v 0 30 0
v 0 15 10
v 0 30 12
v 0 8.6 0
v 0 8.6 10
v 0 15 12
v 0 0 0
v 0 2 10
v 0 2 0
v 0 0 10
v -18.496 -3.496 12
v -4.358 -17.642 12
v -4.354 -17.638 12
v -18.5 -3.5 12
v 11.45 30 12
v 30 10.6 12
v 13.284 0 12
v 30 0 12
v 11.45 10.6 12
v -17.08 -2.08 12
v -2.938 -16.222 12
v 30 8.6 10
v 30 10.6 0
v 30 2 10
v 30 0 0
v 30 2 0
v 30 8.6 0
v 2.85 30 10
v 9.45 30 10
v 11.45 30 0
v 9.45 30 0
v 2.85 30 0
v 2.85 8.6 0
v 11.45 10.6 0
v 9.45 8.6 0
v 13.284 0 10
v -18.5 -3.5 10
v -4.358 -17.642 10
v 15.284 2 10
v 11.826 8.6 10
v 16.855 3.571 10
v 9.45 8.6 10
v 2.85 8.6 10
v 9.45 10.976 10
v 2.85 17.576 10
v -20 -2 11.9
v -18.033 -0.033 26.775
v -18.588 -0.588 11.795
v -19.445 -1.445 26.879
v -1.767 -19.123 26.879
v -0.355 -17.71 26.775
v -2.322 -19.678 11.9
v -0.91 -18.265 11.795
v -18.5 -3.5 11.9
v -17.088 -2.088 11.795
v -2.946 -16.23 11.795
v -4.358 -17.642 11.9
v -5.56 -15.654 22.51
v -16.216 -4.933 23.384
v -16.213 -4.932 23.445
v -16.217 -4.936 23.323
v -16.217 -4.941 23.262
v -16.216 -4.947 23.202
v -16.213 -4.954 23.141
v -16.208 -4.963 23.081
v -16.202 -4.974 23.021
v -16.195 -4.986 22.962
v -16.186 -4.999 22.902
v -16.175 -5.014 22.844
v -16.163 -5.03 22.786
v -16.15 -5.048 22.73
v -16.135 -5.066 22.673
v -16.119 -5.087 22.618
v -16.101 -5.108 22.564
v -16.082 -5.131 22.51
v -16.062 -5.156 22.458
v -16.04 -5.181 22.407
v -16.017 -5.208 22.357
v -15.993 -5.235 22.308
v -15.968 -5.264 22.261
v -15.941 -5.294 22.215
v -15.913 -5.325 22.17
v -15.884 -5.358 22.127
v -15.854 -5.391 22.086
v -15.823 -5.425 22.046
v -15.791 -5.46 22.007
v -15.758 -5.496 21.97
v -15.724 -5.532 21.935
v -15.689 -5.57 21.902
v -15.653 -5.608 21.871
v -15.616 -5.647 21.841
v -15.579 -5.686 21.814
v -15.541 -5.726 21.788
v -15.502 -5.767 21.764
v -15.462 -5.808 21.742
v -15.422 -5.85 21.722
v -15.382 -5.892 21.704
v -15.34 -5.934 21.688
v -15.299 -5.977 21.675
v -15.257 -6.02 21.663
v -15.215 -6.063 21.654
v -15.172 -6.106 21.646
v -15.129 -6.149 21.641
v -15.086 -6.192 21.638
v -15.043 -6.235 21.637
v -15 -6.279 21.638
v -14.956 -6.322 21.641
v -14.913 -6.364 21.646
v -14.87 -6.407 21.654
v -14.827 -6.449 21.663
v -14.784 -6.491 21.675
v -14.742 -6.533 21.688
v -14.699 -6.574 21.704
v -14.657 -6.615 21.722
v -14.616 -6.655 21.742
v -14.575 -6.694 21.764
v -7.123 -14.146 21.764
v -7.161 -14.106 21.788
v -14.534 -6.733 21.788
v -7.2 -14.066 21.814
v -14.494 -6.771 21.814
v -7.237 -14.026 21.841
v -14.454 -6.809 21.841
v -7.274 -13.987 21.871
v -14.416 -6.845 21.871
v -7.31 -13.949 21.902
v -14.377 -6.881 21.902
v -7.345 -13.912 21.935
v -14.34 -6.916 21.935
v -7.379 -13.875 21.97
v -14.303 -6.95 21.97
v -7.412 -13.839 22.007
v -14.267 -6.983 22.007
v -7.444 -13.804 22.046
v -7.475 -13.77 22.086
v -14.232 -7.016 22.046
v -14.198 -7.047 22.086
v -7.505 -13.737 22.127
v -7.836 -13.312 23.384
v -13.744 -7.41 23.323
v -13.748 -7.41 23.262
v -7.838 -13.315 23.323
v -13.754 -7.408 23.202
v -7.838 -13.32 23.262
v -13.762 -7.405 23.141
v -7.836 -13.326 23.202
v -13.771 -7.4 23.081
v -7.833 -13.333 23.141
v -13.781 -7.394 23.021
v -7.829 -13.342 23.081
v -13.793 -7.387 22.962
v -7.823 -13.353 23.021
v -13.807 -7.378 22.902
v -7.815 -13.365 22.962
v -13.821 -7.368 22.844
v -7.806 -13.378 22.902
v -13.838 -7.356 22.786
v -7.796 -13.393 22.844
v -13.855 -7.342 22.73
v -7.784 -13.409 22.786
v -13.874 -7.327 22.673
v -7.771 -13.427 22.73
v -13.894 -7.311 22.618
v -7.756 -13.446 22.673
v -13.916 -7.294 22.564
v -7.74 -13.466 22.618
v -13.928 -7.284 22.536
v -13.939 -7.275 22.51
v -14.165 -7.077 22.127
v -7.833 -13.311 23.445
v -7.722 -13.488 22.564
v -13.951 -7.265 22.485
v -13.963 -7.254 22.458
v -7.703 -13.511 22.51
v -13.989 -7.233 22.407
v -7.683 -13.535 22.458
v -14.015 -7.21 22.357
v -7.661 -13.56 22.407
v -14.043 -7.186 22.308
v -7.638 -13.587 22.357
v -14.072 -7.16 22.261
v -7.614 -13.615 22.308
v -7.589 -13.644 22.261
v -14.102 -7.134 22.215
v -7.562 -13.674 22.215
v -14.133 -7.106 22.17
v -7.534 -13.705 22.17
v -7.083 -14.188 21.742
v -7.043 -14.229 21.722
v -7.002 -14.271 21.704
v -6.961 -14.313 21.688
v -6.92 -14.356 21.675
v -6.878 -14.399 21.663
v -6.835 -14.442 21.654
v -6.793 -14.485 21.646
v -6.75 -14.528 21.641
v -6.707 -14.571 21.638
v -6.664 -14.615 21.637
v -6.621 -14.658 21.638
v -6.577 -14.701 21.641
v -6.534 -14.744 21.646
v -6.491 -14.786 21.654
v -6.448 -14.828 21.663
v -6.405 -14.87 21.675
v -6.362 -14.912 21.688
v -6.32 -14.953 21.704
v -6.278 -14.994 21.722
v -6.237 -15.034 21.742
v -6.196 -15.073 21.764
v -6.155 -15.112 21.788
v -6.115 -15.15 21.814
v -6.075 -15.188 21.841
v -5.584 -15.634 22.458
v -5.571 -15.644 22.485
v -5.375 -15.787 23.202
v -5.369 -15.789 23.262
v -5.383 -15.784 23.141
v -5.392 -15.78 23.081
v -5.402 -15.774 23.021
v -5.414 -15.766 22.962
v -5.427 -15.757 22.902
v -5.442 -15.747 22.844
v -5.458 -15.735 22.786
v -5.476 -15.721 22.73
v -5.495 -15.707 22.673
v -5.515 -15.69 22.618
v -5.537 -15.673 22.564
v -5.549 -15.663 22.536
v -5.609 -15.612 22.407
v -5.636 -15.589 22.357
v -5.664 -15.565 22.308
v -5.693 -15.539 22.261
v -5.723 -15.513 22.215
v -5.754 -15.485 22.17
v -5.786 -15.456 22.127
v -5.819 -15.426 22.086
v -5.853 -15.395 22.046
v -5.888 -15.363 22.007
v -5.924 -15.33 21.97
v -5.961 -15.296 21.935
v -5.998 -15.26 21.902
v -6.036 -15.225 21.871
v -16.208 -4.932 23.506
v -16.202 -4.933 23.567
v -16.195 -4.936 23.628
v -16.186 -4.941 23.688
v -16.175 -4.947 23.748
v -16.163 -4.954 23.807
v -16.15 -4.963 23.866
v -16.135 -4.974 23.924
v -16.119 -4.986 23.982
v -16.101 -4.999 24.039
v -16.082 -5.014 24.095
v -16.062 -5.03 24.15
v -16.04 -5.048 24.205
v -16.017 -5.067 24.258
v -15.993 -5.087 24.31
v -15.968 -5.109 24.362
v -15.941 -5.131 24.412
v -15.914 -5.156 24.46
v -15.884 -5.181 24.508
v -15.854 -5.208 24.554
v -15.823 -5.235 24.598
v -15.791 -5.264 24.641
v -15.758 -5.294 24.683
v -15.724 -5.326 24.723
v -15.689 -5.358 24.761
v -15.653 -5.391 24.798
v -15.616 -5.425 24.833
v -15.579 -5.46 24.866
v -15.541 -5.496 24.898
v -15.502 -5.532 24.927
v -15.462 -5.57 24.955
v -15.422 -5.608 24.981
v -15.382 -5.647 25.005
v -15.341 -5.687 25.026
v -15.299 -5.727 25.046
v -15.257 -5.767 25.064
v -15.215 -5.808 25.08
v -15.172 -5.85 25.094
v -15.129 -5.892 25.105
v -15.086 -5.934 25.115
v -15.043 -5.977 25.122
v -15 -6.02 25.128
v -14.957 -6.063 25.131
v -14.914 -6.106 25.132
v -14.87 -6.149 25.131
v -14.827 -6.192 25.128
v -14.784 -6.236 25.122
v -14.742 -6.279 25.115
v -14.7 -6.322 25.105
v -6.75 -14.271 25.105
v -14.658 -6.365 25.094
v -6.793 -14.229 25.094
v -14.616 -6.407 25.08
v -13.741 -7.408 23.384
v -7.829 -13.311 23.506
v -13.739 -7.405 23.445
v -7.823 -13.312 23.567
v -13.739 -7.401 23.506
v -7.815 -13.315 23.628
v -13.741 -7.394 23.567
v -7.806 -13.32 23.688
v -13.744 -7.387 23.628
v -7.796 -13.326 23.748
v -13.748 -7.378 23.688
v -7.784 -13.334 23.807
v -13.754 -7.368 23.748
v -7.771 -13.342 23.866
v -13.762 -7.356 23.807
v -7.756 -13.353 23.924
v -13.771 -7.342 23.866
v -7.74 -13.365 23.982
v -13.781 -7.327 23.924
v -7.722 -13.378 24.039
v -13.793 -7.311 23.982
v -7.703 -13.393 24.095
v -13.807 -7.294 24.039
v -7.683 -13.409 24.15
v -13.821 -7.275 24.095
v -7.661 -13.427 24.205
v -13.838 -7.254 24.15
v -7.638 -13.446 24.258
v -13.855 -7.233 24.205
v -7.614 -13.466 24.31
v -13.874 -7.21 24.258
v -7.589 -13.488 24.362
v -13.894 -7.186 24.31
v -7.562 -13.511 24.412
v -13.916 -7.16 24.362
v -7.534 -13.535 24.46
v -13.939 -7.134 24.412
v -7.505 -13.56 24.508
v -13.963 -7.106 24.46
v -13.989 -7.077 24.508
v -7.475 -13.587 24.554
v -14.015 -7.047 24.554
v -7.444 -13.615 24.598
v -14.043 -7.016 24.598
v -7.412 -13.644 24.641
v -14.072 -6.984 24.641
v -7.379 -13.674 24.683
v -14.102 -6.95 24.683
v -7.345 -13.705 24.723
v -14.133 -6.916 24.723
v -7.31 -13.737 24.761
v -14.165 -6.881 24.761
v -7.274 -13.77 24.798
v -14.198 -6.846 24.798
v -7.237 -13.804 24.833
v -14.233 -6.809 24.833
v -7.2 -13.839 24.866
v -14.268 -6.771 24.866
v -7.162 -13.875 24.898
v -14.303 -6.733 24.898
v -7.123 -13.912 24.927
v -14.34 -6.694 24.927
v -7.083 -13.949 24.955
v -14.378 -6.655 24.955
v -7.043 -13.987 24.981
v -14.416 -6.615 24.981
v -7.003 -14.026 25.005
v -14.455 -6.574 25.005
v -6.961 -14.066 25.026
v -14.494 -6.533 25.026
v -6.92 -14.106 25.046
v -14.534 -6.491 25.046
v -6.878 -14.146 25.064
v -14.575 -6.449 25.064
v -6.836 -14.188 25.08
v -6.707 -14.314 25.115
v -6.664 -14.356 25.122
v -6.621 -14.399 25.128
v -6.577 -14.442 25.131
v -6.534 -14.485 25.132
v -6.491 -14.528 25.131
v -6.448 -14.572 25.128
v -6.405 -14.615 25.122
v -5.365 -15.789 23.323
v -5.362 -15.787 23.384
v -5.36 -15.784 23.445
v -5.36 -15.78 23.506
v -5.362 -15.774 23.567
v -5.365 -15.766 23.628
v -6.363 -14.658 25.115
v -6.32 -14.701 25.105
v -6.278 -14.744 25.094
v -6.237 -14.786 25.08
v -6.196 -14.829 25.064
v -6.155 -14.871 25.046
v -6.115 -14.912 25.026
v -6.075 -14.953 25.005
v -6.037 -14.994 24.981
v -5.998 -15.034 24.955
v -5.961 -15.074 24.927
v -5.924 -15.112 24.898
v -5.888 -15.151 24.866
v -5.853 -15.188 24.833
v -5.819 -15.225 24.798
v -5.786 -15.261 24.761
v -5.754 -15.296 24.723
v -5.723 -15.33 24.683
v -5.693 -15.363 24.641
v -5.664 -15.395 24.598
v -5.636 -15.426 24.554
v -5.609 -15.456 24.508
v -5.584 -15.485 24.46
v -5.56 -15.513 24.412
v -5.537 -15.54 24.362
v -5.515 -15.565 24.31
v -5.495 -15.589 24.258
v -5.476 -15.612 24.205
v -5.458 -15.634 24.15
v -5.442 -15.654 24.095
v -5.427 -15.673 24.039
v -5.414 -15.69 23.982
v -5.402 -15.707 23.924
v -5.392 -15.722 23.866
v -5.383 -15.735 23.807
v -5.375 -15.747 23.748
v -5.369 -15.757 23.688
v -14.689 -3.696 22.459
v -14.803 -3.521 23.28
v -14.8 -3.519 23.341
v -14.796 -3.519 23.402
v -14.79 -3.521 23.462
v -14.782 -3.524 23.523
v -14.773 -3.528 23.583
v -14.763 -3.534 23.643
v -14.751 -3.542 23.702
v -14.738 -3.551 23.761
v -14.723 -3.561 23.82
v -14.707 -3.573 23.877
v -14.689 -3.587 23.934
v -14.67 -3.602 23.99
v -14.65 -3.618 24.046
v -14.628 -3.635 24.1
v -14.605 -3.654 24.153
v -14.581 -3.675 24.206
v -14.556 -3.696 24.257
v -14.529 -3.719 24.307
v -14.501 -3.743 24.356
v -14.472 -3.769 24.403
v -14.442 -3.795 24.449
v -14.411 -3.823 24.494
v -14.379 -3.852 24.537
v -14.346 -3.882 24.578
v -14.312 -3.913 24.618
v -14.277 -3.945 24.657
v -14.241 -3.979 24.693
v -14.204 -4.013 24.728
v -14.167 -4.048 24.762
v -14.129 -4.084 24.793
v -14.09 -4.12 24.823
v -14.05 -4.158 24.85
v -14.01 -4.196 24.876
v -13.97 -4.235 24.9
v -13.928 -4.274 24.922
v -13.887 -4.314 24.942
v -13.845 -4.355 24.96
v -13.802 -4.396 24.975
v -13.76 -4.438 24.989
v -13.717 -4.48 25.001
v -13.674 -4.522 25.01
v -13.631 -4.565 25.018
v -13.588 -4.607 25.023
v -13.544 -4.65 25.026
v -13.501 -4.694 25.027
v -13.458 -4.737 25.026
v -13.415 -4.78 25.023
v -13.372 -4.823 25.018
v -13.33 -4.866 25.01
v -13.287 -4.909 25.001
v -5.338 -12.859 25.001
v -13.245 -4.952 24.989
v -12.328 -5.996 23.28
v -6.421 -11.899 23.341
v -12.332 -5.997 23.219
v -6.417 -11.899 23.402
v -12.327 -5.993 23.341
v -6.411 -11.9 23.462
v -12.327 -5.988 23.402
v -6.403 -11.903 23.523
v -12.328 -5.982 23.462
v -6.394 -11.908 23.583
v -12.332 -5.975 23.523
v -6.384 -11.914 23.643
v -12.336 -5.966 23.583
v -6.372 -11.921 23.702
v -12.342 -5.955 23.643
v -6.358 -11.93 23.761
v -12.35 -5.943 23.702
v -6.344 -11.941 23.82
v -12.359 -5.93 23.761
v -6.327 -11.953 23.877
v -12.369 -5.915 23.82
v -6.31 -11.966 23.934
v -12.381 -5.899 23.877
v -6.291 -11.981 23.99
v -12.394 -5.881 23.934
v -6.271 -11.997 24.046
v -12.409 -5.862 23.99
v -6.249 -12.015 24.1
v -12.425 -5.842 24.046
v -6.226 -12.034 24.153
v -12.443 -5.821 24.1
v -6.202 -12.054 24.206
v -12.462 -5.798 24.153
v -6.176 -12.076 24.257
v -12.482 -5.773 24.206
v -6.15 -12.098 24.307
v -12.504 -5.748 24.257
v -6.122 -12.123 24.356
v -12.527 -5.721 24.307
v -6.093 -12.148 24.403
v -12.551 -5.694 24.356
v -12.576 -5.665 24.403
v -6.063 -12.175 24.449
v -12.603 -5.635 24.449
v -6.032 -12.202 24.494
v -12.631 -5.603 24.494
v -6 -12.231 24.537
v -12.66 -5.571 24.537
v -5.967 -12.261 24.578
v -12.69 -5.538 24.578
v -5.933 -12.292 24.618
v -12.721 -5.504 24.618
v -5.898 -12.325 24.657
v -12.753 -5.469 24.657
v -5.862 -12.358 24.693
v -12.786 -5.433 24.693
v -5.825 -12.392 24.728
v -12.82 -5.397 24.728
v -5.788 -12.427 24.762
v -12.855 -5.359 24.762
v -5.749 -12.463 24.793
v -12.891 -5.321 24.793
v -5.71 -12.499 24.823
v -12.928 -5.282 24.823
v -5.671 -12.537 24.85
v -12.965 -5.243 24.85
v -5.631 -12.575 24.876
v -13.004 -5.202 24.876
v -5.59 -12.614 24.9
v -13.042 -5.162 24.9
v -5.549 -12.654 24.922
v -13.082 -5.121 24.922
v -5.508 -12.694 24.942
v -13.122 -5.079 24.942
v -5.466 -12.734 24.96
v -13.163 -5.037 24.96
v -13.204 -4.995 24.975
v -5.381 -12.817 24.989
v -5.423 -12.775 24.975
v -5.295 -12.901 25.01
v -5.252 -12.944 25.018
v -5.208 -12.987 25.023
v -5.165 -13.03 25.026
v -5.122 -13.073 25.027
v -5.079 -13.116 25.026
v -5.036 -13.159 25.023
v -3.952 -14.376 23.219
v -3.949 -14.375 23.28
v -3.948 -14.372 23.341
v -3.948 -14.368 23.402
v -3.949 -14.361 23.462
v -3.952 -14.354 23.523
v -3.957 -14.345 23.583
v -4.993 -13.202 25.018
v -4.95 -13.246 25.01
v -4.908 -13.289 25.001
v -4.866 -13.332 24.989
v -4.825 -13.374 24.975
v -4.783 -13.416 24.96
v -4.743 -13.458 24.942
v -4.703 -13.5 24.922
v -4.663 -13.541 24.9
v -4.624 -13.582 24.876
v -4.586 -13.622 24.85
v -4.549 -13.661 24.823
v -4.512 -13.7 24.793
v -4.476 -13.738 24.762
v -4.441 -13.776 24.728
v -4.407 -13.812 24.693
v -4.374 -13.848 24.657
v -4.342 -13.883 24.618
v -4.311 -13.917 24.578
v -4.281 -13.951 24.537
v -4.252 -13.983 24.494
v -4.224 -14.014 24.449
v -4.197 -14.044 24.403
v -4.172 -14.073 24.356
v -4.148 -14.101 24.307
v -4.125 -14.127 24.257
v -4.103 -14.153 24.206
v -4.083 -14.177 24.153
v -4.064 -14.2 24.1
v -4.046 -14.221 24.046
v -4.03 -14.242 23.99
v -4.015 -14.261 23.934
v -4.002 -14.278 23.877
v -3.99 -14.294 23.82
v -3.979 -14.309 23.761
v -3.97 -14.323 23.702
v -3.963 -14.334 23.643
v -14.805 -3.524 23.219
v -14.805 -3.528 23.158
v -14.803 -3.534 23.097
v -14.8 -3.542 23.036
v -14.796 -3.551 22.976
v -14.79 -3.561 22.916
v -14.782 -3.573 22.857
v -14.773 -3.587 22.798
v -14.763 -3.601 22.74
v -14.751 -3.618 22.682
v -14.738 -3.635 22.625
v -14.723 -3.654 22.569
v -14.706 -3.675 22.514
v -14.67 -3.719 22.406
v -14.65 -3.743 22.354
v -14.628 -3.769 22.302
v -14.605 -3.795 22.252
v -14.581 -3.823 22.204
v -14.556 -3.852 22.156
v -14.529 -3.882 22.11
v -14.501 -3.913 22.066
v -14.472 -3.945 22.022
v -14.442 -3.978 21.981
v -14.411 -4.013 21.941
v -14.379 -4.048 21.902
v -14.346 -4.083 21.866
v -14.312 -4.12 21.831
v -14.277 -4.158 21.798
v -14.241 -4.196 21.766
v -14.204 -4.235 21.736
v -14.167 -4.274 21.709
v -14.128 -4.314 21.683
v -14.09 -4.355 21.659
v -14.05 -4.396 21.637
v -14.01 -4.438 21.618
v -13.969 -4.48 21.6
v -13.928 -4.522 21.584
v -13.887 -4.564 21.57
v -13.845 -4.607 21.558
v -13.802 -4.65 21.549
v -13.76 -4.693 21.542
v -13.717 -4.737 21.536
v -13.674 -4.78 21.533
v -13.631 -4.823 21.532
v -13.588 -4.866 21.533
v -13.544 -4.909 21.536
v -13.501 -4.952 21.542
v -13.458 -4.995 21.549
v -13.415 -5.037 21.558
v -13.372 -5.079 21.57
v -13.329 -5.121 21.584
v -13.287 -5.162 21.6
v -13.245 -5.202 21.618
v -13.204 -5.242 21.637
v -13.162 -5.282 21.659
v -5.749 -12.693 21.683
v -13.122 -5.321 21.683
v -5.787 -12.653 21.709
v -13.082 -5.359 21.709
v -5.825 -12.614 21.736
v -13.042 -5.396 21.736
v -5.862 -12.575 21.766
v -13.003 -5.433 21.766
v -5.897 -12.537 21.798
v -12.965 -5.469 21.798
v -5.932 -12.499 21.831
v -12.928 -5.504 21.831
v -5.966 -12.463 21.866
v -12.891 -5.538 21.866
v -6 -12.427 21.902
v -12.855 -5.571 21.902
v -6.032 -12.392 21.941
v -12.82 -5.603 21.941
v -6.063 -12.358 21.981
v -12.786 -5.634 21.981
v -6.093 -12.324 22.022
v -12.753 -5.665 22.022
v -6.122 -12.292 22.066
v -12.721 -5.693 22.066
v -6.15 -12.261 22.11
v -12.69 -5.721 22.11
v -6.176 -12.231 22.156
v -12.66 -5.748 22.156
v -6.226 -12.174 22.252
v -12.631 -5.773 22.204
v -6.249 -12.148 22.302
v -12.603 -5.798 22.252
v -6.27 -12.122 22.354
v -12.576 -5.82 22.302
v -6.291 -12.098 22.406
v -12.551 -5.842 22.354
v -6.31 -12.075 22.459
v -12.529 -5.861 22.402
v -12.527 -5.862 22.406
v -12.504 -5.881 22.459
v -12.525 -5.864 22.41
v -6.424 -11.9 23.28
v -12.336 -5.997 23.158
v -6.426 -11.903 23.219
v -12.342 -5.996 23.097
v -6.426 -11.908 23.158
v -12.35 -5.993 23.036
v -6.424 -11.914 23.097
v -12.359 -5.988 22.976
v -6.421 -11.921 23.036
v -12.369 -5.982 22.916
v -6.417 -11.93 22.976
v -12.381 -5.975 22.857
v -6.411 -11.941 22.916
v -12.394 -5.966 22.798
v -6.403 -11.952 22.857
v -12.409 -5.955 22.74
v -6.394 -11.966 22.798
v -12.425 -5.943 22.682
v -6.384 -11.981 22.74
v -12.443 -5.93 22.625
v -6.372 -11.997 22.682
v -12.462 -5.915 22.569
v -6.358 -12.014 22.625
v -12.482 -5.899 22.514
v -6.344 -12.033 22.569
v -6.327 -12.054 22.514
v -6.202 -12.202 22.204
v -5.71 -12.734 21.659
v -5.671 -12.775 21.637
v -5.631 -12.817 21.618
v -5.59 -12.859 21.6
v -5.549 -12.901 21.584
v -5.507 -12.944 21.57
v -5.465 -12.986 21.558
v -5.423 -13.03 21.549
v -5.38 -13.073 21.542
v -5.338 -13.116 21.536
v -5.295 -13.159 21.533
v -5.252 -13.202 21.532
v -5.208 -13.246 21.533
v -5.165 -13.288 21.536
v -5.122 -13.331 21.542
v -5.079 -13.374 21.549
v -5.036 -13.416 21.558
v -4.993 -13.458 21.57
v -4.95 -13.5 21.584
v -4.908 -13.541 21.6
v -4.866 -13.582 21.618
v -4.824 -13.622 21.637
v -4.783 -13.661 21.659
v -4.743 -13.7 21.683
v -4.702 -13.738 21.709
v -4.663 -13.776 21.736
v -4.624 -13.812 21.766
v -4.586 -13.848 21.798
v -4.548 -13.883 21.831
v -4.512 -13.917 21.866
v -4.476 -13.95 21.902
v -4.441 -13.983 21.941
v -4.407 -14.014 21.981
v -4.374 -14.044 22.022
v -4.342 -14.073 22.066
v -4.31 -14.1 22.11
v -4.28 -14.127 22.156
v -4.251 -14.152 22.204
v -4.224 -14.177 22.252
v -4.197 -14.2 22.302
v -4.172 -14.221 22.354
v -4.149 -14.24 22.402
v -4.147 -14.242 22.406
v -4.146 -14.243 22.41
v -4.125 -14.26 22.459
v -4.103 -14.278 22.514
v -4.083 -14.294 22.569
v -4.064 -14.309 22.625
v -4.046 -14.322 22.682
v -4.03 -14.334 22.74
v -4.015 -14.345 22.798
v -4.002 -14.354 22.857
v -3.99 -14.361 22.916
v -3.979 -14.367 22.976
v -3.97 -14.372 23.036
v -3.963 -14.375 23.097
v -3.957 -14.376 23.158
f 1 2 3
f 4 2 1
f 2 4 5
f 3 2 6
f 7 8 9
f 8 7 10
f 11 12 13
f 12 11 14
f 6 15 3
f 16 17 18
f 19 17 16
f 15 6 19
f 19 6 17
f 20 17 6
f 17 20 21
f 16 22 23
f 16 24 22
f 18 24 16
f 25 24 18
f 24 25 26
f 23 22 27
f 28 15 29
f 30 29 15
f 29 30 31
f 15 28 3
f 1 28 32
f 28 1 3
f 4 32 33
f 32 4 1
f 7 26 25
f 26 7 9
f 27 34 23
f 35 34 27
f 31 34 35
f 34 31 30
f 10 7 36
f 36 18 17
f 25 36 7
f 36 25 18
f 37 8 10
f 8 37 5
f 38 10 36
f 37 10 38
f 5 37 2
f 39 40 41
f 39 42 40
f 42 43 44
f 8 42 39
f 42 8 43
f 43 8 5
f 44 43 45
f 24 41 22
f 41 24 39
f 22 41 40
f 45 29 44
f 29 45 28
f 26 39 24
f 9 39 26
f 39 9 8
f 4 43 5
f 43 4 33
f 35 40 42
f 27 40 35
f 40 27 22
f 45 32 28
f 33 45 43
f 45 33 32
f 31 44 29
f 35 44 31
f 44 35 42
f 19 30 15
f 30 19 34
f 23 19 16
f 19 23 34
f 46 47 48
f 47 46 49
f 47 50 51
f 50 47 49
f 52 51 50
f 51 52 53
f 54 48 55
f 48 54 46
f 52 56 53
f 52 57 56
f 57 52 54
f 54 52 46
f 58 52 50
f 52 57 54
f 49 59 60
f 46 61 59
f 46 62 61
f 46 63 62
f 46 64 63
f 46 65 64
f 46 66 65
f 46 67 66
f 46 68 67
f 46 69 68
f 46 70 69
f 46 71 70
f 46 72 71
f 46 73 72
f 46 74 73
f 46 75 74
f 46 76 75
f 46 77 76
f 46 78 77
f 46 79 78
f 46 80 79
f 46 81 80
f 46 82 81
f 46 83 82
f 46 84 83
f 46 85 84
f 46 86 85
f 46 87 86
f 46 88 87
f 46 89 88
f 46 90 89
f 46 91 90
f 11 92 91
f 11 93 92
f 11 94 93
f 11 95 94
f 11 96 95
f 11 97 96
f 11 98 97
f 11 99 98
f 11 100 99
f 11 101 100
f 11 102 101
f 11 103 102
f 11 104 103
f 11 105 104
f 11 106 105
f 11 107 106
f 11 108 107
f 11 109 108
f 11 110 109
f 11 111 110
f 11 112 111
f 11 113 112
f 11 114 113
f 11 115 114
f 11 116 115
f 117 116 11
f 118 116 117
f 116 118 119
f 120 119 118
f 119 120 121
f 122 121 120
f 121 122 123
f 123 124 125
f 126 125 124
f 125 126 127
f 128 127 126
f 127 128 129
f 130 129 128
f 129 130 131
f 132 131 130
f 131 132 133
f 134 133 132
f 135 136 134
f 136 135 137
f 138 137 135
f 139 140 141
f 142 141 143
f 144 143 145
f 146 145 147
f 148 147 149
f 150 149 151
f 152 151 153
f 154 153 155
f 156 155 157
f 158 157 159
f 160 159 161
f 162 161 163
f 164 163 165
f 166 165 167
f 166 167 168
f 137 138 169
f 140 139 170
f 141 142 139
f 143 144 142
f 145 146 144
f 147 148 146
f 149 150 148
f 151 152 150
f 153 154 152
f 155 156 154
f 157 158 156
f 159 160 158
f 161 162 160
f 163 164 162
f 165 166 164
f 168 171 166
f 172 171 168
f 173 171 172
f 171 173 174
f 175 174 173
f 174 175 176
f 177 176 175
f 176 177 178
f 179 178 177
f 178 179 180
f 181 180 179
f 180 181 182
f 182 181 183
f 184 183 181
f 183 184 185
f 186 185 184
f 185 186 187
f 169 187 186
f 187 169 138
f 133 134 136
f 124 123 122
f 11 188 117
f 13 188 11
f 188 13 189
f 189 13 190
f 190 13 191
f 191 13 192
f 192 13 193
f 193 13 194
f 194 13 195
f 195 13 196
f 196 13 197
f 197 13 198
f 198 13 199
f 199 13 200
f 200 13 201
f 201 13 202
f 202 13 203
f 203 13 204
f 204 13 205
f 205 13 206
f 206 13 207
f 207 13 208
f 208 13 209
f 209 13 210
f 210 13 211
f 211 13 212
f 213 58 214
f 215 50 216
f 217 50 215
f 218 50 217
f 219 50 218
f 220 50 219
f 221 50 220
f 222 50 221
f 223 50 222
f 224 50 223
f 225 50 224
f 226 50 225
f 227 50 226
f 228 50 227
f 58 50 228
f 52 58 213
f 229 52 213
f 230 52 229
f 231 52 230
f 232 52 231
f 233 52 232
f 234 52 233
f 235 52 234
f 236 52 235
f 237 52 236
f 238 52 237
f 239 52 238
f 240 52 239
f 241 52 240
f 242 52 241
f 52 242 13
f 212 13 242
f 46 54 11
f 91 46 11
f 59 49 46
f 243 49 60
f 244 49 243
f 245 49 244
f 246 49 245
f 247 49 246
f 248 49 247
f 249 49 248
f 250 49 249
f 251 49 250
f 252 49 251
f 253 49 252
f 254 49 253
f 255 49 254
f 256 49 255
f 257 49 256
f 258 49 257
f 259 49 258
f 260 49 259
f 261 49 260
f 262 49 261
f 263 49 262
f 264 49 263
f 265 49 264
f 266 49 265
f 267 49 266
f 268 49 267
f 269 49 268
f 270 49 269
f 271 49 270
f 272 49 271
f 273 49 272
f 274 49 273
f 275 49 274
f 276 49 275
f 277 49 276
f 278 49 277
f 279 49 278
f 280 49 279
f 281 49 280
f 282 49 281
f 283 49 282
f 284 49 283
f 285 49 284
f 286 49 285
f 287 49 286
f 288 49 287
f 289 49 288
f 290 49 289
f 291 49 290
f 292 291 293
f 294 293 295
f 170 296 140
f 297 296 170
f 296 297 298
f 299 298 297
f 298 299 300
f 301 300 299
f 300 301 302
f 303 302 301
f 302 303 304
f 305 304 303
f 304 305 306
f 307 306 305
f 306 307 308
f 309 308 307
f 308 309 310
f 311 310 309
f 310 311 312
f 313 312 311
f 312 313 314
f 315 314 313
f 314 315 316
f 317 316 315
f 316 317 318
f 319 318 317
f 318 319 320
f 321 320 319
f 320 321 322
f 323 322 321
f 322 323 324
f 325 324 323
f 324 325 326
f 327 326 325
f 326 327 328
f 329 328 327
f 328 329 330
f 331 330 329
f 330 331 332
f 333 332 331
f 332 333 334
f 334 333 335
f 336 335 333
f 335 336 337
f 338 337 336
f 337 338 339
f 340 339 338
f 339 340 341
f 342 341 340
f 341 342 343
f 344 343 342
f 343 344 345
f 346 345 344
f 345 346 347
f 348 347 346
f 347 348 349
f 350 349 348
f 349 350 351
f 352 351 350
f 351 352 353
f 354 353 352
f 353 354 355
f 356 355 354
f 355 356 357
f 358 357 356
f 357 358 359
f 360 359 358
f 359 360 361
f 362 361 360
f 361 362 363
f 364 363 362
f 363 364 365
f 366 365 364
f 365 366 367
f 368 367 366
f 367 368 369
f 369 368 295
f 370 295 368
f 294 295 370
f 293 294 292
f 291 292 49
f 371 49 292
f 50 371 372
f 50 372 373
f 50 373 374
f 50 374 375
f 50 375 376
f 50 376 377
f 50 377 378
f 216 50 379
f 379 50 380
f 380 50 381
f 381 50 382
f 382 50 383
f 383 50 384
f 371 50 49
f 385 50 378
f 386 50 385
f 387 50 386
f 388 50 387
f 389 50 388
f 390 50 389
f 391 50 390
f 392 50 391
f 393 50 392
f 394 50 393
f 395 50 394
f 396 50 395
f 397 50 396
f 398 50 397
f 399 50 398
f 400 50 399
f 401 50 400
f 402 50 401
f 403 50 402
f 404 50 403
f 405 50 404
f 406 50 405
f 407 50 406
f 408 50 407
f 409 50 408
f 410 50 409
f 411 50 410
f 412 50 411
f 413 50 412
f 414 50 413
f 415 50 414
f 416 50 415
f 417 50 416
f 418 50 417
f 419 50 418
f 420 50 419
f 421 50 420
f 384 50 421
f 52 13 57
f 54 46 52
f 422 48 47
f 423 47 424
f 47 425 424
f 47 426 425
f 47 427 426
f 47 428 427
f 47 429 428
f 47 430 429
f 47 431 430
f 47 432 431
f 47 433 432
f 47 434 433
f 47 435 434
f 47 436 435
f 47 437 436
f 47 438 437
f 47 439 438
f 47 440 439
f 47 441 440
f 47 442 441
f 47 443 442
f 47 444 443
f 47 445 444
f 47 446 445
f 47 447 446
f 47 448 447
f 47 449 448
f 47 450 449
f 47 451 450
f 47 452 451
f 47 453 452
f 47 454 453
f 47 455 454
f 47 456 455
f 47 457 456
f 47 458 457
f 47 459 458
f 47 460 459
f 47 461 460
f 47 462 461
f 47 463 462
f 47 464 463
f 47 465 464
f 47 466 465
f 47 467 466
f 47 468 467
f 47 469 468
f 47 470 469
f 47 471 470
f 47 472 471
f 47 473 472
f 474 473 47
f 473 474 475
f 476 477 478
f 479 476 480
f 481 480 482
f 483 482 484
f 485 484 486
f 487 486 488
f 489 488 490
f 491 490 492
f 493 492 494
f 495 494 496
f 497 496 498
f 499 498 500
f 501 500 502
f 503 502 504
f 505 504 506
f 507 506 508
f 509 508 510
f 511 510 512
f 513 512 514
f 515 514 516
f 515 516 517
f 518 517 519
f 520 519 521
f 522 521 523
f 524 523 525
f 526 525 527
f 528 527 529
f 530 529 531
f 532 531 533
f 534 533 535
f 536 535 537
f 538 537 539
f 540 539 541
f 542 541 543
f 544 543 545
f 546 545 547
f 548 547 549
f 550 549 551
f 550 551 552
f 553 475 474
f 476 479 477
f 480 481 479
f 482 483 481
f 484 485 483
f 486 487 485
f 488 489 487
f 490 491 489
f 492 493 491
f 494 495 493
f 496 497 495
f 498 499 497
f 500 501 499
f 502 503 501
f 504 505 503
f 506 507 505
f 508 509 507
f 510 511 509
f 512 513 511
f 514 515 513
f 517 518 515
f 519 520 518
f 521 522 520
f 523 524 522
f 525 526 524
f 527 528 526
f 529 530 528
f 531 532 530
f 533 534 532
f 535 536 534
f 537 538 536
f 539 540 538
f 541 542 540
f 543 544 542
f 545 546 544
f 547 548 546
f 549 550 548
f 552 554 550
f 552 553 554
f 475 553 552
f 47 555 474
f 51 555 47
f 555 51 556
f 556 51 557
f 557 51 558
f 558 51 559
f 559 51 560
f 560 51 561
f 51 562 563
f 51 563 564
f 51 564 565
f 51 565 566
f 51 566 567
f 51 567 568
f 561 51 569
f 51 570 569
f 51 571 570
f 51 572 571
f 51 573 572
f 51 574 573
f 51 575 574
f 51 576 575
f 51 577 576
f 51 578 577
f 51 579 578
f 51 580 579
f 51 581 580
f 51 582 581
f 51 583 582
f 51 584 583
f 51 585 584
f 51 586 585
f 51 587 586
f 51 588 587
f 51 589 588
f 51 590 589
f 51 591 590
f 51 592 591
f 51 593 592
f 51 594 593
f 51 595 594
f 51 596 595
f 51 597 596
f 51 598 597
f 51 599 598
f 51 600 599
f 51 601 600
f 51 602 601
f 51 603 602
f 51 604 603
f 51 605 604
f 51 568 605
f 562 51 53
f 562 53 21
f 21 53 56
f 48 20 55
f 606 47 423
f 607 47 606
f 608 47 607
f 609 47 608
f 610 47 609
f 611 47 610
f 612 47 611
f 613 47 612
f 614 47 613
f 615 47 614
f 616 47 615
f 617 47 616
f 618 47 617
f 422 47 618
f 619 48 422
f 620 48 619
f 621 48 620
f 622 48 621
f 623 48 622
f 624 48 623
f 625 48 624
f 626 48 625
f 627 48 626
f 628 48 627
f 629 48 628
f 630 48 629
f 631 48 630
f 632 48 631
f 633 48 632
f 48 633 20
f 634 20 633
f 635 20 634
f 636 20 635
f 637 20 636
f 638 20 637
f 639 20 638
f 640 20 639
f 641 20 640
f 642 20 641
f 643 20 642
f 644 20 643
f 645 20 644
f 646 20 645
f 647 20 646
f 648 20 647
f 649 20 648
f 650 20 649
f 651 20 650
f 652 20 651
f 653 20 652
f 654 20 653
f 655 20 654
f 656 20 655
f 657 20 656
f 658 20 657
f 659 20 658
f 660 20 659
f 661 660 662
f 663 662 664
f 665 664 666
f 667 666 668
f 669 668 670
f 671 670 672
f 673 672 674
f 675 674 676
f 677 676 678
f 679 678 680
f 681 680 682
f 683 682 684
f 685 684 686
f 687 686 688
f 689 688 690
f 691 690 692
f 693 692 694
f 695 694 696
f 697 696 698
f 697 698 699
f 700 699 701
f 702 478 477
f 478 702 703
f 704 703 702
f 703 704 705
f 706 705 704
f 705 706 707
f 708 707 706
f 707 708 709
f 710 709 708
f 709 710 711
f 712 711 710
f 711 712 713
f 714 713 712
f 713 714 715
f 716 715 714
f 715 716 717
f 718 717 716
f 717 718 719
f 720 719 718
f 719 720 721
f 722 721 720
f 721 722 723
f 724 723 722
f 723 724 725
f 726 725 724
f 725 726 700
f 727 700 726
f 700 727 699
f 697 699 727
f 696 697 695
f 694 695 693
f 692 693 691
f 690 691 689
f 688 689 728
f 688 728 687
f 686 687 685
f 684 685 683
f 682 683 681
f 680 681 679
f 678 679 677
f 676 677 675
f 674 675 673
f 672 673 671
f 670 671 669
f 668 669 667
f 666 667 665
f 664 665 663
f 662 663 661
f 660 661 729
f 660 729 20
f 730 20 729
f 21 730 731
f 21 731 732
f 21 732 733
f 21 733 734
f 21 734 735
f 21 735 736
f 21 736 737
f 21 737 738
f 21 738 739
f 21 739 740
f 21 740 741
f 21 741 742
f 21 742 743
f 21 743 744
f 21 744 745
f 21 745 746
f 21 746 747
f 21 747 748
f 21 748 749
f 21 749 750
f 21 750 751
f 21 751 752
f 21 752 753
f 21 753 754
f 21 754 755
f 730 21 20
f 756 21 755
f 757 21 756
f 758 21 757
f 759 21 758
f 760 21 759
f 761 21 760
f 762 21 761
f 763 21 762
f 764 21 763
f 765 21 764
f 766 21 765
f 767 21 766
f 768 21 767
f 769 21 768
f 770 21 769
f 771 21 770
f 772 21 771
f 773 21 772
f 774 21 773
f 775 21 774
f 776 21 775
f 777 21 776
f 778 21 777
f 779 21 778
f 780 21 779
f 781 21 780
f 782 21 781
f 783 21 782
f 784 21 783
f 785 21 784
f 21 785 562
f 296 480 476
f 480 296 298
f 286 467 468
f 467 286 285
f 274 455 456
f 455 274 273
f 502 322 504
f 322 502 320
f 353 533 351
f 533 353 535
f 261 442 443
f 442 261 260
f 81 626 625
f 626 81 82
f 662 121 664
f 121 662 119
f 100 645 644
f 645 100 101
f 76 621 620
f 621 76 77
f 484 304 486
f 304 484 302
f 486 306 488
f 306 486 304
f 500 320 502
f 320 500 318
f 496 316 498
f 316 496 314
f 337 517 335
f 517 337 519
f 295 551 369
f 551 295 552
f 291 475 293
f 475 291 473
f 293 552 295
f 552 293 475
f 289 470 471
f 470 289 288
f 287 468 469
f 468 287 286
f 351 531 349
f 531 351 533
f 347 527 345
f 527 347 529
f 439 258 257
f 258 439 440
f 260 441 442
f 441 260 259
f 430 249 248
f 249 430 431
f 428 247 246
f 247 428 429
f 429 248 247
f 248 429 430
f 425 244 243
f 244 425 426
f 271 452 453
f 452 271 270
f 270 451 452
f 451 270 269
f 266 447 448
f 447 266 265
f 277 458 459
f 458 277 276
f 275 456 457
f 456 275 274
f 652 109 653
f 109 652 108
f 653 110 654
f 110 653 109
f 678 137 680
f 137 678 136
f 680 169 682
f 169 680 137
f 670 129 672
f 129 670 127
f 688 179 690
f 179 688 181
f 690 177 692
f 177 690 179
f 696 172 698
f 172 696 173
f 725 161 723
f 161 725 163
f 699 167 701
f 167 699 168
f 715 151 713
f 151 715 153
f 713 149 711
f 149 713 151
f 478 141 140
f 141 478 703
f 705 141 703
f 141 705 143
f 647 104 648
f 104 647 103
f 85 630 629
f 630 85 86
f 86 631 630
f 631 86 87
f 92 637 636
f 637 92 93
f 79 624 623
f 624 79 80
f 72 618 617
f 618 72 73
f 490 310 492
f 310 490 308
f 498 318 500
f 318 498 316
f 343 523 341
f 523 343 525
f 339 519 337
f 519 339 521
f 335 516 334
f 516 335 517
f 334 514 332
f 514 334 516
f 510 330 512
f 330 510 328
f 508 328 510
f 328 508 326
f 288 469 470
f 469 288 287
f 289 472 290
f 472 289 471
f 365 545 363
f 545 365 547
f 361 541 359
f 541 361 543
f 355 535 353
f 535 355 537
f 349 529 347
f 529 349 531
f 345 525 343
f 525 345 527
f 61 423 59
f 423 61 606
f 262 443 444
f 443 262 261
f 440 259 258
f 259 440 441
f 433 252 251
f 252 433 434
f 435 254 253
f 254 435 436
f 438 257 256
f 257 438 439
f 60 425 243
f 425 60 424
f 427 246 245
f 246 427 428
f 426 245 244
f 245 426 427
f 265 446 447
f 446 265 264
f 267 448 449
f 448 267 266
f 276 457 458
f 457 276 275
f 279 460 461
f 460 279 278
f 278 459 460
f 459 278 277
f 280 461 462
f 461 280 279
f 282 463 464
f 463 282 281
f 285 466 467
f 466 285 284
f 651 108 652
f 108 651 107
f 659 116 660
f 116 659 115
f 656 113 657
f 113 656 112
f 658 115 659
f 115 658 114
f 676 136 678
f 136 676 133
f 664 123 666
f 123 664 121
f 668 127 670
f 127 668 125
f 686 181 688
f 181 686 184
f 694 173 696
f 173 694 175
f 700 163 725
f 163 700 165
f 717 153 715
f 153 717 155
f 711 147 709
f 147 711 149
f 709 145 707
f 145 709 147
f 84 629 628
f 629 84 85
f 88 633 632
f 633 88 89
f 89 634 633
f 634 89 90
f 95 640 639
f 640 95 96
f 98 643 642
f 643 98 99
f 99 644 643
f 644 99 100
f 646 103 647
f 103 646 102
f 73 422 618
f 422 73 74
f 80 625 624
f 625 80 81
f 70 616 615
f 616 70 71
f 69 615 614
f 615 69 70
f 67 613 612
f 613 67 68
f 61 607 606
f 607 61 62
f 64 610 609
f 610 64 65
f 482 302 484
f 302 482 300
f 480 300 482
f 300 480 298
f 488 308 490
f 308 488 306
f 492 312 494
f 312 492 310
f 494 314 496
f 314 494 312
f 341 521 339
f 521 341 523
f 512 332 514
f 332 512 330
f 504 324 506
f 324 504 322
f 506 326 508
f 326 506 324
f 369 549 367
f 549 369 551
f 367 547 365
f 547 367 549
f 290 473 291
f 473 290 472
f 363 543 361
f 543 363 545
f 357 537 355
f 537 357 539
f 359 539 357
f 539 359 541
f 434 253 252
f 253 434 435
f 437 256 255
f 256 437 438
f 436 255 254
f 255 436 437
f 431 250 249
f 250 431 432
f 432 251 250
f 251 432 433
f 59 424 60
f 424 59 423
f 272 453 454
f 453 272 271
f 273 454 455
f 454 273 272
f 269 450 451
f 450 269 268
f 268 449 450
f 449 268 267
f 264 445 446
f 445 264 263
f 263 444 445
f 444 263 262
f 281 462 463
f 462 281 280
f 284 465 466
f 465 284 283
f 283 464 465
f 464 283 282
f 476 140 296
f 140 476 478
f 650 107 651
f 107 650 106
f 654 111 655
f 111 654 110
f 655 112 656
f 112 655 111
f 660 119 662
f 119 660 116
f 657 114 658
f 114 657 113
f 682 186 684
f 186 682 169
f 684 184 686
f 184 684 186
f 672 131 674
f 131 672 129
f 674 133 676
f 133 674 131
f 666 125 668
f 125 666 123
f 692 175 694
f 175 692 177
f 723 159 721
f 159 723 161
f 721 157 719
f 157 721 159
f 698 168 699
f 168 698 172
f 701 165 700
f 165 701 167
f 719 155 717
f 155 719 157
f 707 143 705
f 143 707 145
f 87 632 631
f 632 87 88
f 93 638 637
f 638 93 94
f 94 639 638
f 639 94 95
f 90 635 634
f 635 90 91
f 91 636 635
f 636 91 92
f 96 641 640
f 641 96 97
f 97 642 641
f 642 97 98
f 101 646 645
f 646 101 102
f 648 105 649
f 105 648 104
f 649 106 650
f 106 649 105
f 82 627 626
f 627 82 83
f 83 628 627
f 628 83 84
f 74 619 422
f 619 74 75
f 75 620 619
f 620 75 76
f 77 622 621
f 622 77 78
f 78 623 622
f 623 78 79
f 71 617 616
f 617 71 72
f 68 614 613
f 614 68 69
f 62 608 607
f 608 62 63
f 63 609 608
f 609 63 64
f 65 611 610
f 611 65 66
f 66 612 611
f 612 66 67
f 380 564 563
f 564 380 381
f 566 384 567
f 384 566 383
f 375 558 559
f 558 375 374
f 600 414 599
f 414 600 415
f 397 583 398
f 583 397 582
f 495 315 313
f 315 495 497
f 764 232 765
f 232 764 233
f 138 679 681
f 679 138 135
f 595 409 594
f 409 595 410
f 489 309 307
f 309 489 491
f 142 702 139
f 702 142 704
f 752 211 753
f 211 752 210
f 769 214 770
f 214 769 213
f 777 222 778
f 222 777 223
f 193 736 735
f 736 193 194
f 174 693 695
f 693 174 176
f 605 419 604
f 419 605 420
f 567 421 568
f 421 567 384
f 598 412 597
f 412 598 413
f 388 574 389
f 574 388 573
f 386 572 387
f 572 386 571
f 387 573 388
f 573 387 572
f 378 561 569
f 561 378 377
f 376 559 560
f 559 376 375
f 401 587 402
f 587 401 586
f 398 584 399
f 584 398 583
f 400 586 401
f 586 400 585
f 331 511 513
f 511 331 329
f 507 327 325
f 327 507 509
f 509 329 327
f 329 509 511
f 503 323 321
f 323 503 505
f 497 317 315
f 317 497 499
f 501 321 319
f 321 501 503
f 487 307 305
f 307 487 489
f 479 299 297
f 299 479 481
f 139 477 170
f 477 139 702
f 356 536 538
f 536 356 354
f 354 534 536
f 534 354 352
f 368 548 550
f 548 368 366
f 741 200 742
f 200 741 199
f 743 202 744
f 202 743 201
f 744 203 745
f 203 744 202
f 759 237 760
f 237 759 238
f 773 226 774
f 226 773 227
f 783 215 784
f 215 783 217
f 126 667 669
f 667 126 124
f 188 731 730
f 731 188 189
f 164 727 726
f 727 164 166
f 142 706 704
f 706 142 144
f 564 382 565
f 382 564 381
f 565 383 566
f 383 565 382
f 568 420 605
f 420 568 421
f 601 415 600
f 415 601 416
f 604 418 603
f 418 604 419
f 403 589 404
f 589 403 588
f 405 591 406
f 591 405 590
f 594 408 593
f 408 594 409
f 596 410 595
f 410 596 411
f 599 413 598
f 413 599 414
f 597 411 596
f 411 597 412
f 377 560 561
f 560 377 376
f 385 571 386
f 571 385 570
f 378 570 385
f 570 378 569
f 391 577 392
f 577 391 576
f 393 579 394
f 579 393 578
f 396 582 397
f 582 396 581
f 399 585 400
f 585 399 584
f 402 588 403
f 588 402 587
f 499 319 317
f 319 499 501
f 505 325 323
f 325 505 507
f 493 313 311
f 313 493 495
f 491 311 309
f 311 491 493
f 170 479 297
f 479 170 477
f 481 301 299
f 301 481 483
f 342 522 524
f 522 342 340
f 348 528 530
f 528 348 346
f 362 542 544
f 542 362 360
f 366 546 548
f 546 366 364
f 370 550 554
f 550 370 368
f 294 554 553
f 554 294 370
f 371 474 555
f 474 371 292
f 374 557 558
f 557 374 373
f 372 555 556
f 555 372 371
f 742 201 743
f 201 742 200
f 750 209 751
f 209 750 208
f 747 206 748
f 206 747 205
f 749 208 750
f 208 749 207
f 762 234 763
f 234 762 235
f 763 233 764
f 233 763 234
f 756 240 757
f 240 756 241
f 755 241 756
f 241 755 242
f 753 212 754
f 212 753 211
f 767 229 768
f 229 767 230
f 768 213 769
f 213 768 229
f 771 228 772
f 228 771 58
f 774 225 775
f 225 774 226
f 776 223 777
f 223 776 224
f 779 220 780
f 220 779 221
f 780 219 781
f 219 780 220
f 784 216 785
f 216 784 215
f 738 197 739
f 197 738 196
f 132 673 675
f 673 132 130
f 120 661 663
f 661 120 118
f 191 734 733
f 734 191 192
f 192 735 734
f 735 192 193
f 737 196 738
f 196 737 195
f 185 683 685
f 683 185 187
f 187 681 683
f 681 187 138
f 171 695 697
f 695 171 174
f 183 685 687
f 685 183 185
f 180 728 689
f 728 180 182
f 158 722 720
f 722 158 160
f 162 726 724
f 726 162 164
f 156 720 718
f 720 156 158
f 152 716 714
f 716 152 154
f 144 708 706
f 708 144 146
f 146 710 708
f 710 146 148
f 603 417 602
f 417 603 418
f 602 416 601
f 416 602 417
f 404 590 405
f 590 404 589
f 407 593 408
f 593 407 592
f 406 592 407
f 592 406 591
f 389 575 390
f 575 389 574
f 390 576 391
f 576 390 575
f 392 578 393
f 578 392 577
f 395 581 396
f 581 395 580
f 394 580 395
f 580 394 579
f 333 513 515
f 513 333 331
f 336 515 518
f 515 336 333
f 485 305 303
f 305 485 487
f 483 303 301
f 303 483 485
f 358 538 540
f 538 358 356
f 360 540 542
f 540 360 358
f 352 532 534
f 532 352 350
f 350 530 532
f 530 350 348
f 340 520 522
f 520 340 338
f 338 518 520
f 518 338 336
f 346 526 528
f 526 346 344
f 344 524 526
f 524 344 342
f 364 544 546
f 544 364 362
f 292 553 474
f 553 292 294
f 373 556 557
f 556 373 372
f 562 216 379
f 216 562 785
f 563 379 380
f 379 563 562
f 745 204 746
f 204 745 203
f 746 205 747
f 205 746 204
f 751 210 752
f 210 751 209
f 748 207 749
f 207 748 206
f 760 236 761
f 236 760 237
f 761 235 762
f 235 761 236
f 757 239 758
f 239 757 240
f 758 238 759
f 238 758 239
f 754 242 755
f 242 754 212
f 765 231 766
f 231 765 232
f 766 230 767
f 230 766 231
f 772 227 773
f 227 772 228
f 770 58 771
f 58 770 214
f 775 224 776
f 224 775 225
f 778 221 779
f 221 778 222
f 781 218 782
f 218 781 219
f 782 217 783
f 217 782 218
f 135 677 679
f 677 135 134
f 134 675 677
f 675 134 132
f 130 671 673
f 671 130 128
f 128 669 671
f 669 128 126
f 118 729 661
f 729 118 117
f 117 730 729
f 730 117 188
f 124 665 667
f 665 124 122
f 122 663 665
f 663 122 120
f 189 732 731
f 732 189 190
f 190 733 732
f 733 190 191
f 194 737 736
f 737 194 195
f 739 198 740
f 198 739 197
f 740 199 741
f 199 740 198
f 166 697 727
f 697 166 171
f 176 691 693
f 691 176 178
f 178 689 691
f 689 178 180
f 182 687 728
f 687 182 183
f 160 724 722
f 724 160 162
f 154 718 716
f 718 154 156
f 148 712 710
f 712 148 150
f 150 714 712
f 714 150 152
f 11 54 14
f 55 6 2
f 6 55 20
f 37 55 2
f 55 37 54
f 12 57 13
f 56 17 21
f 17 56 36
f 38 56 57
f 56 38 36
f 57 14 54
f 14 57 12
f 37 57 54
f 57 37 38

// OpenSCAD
cam_thickness  = 1;
cam_hole_distance = 15.35;
cam_width = 25;
mounting_hole_rad = 1.75;
frame_thickness = 6.4;
frame_bump = 2.85;
mount_thickness = 2;
slop = .2;
$fn=180;

union() {
    difference () {
        cube([30,30,12]);
        translate([-0.01, mount_thickness, -0.1])
        cube([31,frame_thickness+slop,10.1]);
        translate([frame_bump, frame_thickness+slop-0.01,-0.1])
        cube([frame_thickness+slop, 30, 10.1]);
        translate([frame_bump+frame_thickness+mount_thickness+slop, mount_thickness*2+frame_thickness+slop,-0.1])
        cube([20,20,20]);
    }
    translate([-18.5,-3.5,10])
    rotate([0,0,-45])
    cube([20,30,2]);
    translate([-20,-20,0]) {
    difference() {
        translate([0,18,11.9])
        rotate([-3,0,-45]) {
            difference() {
        cube([cam_width, mount_thickness, 15]);
        translate([6.5,-.1,11.5])
            rotate([90,0,0])
            cylinder(r=mounting_hole_rad, h=5,center=true);
                translate([6.5+cam_hole_distance-mounting_hole_rad*2, -0.1,11.5])
                rotate([90,0,0])
                cylinder(r=mounting_hole_rad, h=5,center=true);
            }
        }
        
    }
}
}
